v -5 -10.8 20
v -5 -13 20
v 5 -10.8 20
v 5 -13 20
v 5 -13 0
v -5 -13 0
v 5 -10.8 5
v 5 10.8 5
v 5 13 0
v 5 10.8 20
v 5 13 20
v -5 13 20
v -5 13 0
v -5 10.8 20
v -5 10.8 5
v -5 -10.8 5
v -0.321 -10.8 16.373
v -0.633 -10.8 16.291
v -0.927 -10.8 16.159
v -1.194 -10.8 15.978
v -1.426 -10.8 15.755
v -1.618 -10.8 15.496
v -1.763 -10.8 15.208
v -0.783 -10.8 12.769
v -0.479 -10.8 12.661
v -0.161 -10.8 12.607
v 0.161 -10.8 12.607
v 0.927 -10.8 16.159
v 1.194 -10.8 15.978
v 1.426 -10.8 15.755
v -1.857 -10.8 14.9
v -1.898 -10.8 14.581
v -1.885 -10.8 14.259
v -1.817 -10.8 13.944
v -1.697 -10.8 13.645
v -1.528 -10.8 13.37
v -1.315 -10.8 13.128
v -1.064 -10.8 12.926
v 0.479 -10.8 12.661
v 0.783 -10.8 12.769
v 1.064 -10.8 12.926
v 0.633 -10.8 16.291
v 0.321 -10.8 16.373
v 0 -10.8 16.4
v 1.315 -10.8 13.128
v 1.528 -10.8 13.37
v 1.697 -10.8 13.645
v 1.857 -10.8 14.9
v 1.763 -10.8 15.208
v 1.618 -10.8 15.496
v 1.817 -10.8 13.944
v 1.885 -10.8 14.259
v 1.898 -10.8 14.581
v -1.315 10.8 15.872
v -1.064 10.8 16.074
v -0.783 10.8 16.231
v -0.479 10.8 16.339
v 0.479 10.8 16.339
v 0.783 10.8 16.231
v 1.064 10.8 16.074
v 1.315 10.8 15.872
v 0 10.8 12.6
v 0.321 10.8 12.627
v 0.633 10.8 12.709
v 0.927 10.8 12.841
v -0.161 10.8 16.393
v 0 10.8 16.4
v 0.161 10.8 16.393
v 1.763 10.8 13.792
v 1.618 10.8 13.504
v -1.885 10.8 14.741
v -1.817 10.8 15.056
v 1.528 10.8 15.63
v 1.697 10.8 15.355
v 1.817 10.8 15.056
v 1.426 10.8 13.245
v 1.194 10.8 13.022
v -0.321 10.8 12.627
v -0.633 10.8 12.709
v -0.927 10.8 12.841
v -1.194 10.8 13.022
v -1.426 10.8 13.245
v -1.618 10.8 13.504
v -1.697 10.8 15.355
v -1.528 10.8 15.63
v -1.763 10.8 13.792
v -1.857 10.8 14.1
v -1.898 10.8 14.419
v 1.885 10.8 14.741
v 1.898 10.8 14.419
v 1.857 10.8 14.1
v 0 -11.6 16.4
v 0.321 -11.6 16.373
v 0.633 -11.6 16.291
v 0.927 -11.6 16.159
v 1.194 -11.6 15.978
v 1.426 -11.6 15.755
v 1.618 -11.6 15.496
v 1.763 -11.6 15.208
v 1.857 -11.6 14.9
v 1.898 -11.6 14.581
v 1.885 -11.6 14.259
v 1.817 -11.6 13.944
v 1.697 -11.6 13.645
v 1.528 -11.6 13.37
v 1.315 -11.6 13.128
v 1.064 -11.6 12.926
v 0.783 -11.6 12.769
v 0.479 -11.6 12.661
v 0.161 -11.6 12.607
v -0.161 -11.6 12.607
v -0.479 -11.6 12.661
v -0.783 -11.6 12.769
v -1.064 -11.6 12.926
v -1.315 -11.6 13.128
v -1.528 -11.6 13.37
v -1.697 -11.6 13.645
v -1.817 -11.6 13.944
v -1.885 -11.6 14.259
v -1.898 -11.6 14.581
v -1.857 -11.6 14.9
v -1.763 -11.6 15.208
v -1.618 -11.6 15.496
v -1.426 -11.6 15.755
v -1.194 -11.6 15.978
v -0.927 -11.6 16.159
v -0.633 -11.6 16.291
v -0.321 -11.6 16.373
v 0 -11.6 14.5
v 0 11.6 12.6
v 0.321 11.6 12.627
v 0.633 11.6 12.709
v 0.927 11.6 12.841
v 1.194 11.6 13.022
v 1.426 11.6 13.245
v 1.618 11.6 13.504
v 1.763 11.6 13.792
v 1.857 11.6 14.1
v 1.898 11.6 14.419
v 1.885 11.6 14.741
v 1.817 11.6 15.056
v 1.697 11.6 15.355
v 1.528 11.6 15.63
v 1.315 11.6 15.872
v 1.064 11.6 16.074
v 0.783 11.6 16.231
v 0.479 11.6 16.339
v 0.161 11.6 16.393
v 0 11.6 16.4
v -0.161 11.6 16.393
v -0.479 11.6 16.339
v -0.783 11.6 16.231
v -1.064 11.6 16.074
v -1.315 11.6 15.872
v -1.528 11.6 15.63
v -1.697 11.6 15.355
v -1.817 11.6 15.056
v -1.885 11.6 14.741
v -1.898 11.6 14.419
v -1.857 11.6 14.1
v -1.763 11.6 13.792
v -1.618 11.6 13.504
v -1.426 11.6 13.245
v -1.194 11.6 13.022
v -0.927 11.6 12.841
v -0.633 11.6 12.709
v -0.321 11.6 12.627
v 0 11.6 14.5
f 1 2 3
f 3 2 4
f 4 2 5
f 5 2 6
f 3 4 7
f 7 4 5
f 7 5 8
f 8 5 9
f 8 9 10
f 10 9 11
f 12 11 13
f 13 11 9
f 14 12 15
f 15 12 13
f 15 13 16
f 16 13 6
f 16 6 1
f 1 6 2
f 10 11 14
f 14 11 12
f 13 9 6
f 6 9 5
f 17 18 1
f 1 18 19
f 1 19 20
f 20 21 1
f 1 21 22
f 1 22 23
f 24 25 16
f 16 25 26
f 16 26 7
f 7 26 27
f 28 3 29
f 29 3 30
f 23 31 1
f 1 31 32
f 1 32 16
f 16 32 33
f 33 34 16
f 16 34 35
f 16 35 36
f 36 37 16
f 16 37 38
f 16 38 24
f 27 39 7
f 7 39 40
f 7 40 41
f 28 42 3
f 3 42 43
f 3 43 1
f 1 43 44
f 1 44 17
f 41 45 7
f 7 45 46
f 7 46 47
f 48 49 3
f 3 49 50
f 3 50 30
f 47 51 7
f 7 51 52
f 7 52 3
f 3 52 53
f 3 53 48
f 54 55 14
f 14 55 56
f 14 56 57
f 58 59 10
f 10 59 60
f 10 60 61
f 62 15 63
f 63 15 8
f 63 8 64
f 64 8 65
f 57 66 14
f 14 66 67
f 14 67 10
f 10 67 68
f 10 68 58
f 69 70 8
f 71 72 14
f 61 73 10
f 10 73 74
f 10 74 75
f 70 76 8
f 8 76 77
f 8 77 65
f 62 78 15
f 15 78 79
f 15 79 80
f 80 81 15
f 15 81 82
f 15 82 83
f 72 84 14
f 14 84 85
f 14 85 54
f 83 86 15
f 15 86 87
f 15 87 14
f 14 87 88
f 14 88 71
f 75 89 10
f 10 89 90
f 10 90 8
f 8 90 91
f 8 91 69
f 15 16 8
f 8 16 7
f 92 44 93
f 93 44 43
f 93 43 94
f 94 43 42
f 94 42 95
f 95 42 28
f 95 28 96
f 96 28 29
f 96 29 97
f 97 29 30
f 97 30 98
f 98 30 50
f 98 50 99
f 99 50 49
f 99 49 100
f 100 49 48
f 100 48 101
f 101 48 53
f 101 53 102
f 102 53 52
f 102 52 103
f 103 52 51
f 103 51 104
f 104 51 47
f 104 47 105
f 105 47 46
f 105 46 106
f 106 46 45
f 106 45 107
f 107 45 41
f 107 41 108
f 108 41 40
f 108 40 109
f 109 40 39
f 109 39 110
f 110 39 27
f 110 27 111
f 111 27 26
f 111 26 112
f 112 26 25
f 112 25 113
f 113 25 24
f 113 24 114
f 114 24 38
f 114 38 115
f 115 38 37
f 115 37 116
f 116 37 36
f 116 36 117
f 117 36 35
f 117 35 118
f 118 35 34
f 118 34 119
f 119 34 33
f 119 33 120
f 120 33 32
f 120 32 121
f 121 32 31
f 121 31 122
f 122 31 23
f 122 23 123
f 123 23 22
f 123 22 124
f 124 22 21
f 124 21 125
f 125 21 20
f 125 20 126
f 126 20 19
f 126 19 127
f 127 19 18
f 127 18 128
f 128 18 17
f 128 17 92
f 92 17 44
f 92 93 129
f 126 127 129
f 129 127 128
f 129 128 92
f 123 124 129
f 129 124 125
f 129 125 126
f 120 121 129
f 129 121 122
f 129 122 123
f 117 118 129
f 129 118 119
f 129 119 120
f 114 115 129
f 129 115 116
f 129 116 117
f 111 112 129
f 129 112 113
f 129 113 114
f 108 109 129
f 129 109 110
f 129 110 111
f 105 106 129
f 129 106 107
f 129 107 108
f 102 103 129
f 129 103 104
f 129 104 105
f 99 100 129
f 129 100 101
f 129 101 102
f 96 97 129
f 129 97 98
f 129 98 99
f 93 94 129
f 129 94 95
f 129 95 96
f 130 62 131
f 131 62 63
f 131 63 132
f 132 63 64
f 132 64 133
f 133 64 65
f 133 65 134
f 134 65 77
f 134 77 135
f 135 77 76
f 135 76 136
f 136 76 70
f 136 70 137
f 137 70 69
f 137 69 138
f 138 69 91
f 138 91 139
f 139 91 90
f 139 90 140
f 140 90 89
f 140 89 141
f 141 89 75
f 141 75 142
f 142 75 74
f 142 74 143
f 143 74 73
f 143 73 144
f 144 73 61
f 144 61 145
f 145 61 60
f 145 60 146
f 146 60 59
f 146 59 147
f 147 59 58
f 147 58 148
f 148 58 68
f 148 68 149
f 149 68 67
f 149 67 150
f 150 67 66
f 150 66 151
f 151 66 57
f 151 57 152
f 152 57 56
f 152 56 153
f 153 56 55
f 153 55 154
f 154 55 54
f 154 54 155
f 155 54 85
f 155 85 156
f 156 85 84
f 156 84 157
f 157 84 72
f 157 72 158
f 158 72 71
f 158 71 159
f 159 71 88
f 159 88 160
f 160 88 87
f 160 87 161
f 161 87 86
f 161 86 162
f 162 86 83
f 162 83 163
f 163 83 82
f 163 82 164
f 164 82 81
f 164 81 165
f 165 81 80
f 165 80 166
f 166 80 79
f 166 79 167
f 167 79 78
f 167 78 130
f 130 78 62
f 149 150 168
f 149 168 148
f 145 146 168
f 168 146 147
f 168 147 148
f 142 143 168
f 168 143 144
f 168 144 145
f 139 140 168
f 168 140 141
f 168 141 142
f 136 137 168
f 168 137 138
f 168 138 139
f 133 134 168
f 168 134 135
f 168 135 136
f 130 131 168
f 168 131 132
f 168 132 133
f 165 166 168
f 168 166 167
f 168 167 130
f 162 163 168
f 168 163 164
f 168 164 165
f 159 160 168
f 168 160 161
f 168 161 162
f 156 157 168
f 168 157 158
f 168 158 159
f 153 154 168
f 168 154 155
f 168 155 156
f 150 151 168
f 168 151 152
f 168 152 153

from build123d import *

# Parameters (mm, degrees)
SKETCH1_W           = 26
SKETCH1_H           = 10
BOSS_EXTRUDE1_DEPTH = 20
SKETCH2_W           = 10
SKETCH2_H           = 21.6
CUT_EXTRUDE1_DEPTH  = 15
SKETCH3_R           = 1.9
CUT_EXTRUDE2_DEPTH  = 0.8


with BuildPart() as part:
    # Sketch1 → Boss-Extrude1 (new body)
    with BuildSketch(Plane(origin=(0, 0, 0), x_dir=(0, 1, 0), z_dir=(0, 0, 1))):
        Rectangle(SKETCH1_W, SKETCH1_H)
    extrude(amount=BOSS_EXTRUDE1_DEPTH)

    # Sketch2 → Cut-Extrude1 (cut)
    with BuildSketch(Plane.XY.offset(20)):
        Rectangle(SKETCH2_W, SKETCH2_H)
    extrude(amount=-CUT_EXTRUDE1_DEPTH, mode=Mode.SUBTRACT)

    # Sketch3 → Cut-Extrude2 (cut)
    with BuildSketch(Plane(origin=(0, -10.8, 0), x_dir=(-1, 0, 0), z_dir=(0, 1, 0))):
        with Locations(Location((0, 14.5, 0), (0, 0, 90))):
            Circle(SKETCH3_R)
    cut_extrude2 = extrude(amount=-CUT_EXTRUDE2_DEPTH, mode=Mode.SUBTRACT)

    # Mirror1: Cut-Extrude2 across plane
    add(cut_extrude2.mirror(Plane.ZX), mode=Mode.SUBTRACT)


solid = part.part
